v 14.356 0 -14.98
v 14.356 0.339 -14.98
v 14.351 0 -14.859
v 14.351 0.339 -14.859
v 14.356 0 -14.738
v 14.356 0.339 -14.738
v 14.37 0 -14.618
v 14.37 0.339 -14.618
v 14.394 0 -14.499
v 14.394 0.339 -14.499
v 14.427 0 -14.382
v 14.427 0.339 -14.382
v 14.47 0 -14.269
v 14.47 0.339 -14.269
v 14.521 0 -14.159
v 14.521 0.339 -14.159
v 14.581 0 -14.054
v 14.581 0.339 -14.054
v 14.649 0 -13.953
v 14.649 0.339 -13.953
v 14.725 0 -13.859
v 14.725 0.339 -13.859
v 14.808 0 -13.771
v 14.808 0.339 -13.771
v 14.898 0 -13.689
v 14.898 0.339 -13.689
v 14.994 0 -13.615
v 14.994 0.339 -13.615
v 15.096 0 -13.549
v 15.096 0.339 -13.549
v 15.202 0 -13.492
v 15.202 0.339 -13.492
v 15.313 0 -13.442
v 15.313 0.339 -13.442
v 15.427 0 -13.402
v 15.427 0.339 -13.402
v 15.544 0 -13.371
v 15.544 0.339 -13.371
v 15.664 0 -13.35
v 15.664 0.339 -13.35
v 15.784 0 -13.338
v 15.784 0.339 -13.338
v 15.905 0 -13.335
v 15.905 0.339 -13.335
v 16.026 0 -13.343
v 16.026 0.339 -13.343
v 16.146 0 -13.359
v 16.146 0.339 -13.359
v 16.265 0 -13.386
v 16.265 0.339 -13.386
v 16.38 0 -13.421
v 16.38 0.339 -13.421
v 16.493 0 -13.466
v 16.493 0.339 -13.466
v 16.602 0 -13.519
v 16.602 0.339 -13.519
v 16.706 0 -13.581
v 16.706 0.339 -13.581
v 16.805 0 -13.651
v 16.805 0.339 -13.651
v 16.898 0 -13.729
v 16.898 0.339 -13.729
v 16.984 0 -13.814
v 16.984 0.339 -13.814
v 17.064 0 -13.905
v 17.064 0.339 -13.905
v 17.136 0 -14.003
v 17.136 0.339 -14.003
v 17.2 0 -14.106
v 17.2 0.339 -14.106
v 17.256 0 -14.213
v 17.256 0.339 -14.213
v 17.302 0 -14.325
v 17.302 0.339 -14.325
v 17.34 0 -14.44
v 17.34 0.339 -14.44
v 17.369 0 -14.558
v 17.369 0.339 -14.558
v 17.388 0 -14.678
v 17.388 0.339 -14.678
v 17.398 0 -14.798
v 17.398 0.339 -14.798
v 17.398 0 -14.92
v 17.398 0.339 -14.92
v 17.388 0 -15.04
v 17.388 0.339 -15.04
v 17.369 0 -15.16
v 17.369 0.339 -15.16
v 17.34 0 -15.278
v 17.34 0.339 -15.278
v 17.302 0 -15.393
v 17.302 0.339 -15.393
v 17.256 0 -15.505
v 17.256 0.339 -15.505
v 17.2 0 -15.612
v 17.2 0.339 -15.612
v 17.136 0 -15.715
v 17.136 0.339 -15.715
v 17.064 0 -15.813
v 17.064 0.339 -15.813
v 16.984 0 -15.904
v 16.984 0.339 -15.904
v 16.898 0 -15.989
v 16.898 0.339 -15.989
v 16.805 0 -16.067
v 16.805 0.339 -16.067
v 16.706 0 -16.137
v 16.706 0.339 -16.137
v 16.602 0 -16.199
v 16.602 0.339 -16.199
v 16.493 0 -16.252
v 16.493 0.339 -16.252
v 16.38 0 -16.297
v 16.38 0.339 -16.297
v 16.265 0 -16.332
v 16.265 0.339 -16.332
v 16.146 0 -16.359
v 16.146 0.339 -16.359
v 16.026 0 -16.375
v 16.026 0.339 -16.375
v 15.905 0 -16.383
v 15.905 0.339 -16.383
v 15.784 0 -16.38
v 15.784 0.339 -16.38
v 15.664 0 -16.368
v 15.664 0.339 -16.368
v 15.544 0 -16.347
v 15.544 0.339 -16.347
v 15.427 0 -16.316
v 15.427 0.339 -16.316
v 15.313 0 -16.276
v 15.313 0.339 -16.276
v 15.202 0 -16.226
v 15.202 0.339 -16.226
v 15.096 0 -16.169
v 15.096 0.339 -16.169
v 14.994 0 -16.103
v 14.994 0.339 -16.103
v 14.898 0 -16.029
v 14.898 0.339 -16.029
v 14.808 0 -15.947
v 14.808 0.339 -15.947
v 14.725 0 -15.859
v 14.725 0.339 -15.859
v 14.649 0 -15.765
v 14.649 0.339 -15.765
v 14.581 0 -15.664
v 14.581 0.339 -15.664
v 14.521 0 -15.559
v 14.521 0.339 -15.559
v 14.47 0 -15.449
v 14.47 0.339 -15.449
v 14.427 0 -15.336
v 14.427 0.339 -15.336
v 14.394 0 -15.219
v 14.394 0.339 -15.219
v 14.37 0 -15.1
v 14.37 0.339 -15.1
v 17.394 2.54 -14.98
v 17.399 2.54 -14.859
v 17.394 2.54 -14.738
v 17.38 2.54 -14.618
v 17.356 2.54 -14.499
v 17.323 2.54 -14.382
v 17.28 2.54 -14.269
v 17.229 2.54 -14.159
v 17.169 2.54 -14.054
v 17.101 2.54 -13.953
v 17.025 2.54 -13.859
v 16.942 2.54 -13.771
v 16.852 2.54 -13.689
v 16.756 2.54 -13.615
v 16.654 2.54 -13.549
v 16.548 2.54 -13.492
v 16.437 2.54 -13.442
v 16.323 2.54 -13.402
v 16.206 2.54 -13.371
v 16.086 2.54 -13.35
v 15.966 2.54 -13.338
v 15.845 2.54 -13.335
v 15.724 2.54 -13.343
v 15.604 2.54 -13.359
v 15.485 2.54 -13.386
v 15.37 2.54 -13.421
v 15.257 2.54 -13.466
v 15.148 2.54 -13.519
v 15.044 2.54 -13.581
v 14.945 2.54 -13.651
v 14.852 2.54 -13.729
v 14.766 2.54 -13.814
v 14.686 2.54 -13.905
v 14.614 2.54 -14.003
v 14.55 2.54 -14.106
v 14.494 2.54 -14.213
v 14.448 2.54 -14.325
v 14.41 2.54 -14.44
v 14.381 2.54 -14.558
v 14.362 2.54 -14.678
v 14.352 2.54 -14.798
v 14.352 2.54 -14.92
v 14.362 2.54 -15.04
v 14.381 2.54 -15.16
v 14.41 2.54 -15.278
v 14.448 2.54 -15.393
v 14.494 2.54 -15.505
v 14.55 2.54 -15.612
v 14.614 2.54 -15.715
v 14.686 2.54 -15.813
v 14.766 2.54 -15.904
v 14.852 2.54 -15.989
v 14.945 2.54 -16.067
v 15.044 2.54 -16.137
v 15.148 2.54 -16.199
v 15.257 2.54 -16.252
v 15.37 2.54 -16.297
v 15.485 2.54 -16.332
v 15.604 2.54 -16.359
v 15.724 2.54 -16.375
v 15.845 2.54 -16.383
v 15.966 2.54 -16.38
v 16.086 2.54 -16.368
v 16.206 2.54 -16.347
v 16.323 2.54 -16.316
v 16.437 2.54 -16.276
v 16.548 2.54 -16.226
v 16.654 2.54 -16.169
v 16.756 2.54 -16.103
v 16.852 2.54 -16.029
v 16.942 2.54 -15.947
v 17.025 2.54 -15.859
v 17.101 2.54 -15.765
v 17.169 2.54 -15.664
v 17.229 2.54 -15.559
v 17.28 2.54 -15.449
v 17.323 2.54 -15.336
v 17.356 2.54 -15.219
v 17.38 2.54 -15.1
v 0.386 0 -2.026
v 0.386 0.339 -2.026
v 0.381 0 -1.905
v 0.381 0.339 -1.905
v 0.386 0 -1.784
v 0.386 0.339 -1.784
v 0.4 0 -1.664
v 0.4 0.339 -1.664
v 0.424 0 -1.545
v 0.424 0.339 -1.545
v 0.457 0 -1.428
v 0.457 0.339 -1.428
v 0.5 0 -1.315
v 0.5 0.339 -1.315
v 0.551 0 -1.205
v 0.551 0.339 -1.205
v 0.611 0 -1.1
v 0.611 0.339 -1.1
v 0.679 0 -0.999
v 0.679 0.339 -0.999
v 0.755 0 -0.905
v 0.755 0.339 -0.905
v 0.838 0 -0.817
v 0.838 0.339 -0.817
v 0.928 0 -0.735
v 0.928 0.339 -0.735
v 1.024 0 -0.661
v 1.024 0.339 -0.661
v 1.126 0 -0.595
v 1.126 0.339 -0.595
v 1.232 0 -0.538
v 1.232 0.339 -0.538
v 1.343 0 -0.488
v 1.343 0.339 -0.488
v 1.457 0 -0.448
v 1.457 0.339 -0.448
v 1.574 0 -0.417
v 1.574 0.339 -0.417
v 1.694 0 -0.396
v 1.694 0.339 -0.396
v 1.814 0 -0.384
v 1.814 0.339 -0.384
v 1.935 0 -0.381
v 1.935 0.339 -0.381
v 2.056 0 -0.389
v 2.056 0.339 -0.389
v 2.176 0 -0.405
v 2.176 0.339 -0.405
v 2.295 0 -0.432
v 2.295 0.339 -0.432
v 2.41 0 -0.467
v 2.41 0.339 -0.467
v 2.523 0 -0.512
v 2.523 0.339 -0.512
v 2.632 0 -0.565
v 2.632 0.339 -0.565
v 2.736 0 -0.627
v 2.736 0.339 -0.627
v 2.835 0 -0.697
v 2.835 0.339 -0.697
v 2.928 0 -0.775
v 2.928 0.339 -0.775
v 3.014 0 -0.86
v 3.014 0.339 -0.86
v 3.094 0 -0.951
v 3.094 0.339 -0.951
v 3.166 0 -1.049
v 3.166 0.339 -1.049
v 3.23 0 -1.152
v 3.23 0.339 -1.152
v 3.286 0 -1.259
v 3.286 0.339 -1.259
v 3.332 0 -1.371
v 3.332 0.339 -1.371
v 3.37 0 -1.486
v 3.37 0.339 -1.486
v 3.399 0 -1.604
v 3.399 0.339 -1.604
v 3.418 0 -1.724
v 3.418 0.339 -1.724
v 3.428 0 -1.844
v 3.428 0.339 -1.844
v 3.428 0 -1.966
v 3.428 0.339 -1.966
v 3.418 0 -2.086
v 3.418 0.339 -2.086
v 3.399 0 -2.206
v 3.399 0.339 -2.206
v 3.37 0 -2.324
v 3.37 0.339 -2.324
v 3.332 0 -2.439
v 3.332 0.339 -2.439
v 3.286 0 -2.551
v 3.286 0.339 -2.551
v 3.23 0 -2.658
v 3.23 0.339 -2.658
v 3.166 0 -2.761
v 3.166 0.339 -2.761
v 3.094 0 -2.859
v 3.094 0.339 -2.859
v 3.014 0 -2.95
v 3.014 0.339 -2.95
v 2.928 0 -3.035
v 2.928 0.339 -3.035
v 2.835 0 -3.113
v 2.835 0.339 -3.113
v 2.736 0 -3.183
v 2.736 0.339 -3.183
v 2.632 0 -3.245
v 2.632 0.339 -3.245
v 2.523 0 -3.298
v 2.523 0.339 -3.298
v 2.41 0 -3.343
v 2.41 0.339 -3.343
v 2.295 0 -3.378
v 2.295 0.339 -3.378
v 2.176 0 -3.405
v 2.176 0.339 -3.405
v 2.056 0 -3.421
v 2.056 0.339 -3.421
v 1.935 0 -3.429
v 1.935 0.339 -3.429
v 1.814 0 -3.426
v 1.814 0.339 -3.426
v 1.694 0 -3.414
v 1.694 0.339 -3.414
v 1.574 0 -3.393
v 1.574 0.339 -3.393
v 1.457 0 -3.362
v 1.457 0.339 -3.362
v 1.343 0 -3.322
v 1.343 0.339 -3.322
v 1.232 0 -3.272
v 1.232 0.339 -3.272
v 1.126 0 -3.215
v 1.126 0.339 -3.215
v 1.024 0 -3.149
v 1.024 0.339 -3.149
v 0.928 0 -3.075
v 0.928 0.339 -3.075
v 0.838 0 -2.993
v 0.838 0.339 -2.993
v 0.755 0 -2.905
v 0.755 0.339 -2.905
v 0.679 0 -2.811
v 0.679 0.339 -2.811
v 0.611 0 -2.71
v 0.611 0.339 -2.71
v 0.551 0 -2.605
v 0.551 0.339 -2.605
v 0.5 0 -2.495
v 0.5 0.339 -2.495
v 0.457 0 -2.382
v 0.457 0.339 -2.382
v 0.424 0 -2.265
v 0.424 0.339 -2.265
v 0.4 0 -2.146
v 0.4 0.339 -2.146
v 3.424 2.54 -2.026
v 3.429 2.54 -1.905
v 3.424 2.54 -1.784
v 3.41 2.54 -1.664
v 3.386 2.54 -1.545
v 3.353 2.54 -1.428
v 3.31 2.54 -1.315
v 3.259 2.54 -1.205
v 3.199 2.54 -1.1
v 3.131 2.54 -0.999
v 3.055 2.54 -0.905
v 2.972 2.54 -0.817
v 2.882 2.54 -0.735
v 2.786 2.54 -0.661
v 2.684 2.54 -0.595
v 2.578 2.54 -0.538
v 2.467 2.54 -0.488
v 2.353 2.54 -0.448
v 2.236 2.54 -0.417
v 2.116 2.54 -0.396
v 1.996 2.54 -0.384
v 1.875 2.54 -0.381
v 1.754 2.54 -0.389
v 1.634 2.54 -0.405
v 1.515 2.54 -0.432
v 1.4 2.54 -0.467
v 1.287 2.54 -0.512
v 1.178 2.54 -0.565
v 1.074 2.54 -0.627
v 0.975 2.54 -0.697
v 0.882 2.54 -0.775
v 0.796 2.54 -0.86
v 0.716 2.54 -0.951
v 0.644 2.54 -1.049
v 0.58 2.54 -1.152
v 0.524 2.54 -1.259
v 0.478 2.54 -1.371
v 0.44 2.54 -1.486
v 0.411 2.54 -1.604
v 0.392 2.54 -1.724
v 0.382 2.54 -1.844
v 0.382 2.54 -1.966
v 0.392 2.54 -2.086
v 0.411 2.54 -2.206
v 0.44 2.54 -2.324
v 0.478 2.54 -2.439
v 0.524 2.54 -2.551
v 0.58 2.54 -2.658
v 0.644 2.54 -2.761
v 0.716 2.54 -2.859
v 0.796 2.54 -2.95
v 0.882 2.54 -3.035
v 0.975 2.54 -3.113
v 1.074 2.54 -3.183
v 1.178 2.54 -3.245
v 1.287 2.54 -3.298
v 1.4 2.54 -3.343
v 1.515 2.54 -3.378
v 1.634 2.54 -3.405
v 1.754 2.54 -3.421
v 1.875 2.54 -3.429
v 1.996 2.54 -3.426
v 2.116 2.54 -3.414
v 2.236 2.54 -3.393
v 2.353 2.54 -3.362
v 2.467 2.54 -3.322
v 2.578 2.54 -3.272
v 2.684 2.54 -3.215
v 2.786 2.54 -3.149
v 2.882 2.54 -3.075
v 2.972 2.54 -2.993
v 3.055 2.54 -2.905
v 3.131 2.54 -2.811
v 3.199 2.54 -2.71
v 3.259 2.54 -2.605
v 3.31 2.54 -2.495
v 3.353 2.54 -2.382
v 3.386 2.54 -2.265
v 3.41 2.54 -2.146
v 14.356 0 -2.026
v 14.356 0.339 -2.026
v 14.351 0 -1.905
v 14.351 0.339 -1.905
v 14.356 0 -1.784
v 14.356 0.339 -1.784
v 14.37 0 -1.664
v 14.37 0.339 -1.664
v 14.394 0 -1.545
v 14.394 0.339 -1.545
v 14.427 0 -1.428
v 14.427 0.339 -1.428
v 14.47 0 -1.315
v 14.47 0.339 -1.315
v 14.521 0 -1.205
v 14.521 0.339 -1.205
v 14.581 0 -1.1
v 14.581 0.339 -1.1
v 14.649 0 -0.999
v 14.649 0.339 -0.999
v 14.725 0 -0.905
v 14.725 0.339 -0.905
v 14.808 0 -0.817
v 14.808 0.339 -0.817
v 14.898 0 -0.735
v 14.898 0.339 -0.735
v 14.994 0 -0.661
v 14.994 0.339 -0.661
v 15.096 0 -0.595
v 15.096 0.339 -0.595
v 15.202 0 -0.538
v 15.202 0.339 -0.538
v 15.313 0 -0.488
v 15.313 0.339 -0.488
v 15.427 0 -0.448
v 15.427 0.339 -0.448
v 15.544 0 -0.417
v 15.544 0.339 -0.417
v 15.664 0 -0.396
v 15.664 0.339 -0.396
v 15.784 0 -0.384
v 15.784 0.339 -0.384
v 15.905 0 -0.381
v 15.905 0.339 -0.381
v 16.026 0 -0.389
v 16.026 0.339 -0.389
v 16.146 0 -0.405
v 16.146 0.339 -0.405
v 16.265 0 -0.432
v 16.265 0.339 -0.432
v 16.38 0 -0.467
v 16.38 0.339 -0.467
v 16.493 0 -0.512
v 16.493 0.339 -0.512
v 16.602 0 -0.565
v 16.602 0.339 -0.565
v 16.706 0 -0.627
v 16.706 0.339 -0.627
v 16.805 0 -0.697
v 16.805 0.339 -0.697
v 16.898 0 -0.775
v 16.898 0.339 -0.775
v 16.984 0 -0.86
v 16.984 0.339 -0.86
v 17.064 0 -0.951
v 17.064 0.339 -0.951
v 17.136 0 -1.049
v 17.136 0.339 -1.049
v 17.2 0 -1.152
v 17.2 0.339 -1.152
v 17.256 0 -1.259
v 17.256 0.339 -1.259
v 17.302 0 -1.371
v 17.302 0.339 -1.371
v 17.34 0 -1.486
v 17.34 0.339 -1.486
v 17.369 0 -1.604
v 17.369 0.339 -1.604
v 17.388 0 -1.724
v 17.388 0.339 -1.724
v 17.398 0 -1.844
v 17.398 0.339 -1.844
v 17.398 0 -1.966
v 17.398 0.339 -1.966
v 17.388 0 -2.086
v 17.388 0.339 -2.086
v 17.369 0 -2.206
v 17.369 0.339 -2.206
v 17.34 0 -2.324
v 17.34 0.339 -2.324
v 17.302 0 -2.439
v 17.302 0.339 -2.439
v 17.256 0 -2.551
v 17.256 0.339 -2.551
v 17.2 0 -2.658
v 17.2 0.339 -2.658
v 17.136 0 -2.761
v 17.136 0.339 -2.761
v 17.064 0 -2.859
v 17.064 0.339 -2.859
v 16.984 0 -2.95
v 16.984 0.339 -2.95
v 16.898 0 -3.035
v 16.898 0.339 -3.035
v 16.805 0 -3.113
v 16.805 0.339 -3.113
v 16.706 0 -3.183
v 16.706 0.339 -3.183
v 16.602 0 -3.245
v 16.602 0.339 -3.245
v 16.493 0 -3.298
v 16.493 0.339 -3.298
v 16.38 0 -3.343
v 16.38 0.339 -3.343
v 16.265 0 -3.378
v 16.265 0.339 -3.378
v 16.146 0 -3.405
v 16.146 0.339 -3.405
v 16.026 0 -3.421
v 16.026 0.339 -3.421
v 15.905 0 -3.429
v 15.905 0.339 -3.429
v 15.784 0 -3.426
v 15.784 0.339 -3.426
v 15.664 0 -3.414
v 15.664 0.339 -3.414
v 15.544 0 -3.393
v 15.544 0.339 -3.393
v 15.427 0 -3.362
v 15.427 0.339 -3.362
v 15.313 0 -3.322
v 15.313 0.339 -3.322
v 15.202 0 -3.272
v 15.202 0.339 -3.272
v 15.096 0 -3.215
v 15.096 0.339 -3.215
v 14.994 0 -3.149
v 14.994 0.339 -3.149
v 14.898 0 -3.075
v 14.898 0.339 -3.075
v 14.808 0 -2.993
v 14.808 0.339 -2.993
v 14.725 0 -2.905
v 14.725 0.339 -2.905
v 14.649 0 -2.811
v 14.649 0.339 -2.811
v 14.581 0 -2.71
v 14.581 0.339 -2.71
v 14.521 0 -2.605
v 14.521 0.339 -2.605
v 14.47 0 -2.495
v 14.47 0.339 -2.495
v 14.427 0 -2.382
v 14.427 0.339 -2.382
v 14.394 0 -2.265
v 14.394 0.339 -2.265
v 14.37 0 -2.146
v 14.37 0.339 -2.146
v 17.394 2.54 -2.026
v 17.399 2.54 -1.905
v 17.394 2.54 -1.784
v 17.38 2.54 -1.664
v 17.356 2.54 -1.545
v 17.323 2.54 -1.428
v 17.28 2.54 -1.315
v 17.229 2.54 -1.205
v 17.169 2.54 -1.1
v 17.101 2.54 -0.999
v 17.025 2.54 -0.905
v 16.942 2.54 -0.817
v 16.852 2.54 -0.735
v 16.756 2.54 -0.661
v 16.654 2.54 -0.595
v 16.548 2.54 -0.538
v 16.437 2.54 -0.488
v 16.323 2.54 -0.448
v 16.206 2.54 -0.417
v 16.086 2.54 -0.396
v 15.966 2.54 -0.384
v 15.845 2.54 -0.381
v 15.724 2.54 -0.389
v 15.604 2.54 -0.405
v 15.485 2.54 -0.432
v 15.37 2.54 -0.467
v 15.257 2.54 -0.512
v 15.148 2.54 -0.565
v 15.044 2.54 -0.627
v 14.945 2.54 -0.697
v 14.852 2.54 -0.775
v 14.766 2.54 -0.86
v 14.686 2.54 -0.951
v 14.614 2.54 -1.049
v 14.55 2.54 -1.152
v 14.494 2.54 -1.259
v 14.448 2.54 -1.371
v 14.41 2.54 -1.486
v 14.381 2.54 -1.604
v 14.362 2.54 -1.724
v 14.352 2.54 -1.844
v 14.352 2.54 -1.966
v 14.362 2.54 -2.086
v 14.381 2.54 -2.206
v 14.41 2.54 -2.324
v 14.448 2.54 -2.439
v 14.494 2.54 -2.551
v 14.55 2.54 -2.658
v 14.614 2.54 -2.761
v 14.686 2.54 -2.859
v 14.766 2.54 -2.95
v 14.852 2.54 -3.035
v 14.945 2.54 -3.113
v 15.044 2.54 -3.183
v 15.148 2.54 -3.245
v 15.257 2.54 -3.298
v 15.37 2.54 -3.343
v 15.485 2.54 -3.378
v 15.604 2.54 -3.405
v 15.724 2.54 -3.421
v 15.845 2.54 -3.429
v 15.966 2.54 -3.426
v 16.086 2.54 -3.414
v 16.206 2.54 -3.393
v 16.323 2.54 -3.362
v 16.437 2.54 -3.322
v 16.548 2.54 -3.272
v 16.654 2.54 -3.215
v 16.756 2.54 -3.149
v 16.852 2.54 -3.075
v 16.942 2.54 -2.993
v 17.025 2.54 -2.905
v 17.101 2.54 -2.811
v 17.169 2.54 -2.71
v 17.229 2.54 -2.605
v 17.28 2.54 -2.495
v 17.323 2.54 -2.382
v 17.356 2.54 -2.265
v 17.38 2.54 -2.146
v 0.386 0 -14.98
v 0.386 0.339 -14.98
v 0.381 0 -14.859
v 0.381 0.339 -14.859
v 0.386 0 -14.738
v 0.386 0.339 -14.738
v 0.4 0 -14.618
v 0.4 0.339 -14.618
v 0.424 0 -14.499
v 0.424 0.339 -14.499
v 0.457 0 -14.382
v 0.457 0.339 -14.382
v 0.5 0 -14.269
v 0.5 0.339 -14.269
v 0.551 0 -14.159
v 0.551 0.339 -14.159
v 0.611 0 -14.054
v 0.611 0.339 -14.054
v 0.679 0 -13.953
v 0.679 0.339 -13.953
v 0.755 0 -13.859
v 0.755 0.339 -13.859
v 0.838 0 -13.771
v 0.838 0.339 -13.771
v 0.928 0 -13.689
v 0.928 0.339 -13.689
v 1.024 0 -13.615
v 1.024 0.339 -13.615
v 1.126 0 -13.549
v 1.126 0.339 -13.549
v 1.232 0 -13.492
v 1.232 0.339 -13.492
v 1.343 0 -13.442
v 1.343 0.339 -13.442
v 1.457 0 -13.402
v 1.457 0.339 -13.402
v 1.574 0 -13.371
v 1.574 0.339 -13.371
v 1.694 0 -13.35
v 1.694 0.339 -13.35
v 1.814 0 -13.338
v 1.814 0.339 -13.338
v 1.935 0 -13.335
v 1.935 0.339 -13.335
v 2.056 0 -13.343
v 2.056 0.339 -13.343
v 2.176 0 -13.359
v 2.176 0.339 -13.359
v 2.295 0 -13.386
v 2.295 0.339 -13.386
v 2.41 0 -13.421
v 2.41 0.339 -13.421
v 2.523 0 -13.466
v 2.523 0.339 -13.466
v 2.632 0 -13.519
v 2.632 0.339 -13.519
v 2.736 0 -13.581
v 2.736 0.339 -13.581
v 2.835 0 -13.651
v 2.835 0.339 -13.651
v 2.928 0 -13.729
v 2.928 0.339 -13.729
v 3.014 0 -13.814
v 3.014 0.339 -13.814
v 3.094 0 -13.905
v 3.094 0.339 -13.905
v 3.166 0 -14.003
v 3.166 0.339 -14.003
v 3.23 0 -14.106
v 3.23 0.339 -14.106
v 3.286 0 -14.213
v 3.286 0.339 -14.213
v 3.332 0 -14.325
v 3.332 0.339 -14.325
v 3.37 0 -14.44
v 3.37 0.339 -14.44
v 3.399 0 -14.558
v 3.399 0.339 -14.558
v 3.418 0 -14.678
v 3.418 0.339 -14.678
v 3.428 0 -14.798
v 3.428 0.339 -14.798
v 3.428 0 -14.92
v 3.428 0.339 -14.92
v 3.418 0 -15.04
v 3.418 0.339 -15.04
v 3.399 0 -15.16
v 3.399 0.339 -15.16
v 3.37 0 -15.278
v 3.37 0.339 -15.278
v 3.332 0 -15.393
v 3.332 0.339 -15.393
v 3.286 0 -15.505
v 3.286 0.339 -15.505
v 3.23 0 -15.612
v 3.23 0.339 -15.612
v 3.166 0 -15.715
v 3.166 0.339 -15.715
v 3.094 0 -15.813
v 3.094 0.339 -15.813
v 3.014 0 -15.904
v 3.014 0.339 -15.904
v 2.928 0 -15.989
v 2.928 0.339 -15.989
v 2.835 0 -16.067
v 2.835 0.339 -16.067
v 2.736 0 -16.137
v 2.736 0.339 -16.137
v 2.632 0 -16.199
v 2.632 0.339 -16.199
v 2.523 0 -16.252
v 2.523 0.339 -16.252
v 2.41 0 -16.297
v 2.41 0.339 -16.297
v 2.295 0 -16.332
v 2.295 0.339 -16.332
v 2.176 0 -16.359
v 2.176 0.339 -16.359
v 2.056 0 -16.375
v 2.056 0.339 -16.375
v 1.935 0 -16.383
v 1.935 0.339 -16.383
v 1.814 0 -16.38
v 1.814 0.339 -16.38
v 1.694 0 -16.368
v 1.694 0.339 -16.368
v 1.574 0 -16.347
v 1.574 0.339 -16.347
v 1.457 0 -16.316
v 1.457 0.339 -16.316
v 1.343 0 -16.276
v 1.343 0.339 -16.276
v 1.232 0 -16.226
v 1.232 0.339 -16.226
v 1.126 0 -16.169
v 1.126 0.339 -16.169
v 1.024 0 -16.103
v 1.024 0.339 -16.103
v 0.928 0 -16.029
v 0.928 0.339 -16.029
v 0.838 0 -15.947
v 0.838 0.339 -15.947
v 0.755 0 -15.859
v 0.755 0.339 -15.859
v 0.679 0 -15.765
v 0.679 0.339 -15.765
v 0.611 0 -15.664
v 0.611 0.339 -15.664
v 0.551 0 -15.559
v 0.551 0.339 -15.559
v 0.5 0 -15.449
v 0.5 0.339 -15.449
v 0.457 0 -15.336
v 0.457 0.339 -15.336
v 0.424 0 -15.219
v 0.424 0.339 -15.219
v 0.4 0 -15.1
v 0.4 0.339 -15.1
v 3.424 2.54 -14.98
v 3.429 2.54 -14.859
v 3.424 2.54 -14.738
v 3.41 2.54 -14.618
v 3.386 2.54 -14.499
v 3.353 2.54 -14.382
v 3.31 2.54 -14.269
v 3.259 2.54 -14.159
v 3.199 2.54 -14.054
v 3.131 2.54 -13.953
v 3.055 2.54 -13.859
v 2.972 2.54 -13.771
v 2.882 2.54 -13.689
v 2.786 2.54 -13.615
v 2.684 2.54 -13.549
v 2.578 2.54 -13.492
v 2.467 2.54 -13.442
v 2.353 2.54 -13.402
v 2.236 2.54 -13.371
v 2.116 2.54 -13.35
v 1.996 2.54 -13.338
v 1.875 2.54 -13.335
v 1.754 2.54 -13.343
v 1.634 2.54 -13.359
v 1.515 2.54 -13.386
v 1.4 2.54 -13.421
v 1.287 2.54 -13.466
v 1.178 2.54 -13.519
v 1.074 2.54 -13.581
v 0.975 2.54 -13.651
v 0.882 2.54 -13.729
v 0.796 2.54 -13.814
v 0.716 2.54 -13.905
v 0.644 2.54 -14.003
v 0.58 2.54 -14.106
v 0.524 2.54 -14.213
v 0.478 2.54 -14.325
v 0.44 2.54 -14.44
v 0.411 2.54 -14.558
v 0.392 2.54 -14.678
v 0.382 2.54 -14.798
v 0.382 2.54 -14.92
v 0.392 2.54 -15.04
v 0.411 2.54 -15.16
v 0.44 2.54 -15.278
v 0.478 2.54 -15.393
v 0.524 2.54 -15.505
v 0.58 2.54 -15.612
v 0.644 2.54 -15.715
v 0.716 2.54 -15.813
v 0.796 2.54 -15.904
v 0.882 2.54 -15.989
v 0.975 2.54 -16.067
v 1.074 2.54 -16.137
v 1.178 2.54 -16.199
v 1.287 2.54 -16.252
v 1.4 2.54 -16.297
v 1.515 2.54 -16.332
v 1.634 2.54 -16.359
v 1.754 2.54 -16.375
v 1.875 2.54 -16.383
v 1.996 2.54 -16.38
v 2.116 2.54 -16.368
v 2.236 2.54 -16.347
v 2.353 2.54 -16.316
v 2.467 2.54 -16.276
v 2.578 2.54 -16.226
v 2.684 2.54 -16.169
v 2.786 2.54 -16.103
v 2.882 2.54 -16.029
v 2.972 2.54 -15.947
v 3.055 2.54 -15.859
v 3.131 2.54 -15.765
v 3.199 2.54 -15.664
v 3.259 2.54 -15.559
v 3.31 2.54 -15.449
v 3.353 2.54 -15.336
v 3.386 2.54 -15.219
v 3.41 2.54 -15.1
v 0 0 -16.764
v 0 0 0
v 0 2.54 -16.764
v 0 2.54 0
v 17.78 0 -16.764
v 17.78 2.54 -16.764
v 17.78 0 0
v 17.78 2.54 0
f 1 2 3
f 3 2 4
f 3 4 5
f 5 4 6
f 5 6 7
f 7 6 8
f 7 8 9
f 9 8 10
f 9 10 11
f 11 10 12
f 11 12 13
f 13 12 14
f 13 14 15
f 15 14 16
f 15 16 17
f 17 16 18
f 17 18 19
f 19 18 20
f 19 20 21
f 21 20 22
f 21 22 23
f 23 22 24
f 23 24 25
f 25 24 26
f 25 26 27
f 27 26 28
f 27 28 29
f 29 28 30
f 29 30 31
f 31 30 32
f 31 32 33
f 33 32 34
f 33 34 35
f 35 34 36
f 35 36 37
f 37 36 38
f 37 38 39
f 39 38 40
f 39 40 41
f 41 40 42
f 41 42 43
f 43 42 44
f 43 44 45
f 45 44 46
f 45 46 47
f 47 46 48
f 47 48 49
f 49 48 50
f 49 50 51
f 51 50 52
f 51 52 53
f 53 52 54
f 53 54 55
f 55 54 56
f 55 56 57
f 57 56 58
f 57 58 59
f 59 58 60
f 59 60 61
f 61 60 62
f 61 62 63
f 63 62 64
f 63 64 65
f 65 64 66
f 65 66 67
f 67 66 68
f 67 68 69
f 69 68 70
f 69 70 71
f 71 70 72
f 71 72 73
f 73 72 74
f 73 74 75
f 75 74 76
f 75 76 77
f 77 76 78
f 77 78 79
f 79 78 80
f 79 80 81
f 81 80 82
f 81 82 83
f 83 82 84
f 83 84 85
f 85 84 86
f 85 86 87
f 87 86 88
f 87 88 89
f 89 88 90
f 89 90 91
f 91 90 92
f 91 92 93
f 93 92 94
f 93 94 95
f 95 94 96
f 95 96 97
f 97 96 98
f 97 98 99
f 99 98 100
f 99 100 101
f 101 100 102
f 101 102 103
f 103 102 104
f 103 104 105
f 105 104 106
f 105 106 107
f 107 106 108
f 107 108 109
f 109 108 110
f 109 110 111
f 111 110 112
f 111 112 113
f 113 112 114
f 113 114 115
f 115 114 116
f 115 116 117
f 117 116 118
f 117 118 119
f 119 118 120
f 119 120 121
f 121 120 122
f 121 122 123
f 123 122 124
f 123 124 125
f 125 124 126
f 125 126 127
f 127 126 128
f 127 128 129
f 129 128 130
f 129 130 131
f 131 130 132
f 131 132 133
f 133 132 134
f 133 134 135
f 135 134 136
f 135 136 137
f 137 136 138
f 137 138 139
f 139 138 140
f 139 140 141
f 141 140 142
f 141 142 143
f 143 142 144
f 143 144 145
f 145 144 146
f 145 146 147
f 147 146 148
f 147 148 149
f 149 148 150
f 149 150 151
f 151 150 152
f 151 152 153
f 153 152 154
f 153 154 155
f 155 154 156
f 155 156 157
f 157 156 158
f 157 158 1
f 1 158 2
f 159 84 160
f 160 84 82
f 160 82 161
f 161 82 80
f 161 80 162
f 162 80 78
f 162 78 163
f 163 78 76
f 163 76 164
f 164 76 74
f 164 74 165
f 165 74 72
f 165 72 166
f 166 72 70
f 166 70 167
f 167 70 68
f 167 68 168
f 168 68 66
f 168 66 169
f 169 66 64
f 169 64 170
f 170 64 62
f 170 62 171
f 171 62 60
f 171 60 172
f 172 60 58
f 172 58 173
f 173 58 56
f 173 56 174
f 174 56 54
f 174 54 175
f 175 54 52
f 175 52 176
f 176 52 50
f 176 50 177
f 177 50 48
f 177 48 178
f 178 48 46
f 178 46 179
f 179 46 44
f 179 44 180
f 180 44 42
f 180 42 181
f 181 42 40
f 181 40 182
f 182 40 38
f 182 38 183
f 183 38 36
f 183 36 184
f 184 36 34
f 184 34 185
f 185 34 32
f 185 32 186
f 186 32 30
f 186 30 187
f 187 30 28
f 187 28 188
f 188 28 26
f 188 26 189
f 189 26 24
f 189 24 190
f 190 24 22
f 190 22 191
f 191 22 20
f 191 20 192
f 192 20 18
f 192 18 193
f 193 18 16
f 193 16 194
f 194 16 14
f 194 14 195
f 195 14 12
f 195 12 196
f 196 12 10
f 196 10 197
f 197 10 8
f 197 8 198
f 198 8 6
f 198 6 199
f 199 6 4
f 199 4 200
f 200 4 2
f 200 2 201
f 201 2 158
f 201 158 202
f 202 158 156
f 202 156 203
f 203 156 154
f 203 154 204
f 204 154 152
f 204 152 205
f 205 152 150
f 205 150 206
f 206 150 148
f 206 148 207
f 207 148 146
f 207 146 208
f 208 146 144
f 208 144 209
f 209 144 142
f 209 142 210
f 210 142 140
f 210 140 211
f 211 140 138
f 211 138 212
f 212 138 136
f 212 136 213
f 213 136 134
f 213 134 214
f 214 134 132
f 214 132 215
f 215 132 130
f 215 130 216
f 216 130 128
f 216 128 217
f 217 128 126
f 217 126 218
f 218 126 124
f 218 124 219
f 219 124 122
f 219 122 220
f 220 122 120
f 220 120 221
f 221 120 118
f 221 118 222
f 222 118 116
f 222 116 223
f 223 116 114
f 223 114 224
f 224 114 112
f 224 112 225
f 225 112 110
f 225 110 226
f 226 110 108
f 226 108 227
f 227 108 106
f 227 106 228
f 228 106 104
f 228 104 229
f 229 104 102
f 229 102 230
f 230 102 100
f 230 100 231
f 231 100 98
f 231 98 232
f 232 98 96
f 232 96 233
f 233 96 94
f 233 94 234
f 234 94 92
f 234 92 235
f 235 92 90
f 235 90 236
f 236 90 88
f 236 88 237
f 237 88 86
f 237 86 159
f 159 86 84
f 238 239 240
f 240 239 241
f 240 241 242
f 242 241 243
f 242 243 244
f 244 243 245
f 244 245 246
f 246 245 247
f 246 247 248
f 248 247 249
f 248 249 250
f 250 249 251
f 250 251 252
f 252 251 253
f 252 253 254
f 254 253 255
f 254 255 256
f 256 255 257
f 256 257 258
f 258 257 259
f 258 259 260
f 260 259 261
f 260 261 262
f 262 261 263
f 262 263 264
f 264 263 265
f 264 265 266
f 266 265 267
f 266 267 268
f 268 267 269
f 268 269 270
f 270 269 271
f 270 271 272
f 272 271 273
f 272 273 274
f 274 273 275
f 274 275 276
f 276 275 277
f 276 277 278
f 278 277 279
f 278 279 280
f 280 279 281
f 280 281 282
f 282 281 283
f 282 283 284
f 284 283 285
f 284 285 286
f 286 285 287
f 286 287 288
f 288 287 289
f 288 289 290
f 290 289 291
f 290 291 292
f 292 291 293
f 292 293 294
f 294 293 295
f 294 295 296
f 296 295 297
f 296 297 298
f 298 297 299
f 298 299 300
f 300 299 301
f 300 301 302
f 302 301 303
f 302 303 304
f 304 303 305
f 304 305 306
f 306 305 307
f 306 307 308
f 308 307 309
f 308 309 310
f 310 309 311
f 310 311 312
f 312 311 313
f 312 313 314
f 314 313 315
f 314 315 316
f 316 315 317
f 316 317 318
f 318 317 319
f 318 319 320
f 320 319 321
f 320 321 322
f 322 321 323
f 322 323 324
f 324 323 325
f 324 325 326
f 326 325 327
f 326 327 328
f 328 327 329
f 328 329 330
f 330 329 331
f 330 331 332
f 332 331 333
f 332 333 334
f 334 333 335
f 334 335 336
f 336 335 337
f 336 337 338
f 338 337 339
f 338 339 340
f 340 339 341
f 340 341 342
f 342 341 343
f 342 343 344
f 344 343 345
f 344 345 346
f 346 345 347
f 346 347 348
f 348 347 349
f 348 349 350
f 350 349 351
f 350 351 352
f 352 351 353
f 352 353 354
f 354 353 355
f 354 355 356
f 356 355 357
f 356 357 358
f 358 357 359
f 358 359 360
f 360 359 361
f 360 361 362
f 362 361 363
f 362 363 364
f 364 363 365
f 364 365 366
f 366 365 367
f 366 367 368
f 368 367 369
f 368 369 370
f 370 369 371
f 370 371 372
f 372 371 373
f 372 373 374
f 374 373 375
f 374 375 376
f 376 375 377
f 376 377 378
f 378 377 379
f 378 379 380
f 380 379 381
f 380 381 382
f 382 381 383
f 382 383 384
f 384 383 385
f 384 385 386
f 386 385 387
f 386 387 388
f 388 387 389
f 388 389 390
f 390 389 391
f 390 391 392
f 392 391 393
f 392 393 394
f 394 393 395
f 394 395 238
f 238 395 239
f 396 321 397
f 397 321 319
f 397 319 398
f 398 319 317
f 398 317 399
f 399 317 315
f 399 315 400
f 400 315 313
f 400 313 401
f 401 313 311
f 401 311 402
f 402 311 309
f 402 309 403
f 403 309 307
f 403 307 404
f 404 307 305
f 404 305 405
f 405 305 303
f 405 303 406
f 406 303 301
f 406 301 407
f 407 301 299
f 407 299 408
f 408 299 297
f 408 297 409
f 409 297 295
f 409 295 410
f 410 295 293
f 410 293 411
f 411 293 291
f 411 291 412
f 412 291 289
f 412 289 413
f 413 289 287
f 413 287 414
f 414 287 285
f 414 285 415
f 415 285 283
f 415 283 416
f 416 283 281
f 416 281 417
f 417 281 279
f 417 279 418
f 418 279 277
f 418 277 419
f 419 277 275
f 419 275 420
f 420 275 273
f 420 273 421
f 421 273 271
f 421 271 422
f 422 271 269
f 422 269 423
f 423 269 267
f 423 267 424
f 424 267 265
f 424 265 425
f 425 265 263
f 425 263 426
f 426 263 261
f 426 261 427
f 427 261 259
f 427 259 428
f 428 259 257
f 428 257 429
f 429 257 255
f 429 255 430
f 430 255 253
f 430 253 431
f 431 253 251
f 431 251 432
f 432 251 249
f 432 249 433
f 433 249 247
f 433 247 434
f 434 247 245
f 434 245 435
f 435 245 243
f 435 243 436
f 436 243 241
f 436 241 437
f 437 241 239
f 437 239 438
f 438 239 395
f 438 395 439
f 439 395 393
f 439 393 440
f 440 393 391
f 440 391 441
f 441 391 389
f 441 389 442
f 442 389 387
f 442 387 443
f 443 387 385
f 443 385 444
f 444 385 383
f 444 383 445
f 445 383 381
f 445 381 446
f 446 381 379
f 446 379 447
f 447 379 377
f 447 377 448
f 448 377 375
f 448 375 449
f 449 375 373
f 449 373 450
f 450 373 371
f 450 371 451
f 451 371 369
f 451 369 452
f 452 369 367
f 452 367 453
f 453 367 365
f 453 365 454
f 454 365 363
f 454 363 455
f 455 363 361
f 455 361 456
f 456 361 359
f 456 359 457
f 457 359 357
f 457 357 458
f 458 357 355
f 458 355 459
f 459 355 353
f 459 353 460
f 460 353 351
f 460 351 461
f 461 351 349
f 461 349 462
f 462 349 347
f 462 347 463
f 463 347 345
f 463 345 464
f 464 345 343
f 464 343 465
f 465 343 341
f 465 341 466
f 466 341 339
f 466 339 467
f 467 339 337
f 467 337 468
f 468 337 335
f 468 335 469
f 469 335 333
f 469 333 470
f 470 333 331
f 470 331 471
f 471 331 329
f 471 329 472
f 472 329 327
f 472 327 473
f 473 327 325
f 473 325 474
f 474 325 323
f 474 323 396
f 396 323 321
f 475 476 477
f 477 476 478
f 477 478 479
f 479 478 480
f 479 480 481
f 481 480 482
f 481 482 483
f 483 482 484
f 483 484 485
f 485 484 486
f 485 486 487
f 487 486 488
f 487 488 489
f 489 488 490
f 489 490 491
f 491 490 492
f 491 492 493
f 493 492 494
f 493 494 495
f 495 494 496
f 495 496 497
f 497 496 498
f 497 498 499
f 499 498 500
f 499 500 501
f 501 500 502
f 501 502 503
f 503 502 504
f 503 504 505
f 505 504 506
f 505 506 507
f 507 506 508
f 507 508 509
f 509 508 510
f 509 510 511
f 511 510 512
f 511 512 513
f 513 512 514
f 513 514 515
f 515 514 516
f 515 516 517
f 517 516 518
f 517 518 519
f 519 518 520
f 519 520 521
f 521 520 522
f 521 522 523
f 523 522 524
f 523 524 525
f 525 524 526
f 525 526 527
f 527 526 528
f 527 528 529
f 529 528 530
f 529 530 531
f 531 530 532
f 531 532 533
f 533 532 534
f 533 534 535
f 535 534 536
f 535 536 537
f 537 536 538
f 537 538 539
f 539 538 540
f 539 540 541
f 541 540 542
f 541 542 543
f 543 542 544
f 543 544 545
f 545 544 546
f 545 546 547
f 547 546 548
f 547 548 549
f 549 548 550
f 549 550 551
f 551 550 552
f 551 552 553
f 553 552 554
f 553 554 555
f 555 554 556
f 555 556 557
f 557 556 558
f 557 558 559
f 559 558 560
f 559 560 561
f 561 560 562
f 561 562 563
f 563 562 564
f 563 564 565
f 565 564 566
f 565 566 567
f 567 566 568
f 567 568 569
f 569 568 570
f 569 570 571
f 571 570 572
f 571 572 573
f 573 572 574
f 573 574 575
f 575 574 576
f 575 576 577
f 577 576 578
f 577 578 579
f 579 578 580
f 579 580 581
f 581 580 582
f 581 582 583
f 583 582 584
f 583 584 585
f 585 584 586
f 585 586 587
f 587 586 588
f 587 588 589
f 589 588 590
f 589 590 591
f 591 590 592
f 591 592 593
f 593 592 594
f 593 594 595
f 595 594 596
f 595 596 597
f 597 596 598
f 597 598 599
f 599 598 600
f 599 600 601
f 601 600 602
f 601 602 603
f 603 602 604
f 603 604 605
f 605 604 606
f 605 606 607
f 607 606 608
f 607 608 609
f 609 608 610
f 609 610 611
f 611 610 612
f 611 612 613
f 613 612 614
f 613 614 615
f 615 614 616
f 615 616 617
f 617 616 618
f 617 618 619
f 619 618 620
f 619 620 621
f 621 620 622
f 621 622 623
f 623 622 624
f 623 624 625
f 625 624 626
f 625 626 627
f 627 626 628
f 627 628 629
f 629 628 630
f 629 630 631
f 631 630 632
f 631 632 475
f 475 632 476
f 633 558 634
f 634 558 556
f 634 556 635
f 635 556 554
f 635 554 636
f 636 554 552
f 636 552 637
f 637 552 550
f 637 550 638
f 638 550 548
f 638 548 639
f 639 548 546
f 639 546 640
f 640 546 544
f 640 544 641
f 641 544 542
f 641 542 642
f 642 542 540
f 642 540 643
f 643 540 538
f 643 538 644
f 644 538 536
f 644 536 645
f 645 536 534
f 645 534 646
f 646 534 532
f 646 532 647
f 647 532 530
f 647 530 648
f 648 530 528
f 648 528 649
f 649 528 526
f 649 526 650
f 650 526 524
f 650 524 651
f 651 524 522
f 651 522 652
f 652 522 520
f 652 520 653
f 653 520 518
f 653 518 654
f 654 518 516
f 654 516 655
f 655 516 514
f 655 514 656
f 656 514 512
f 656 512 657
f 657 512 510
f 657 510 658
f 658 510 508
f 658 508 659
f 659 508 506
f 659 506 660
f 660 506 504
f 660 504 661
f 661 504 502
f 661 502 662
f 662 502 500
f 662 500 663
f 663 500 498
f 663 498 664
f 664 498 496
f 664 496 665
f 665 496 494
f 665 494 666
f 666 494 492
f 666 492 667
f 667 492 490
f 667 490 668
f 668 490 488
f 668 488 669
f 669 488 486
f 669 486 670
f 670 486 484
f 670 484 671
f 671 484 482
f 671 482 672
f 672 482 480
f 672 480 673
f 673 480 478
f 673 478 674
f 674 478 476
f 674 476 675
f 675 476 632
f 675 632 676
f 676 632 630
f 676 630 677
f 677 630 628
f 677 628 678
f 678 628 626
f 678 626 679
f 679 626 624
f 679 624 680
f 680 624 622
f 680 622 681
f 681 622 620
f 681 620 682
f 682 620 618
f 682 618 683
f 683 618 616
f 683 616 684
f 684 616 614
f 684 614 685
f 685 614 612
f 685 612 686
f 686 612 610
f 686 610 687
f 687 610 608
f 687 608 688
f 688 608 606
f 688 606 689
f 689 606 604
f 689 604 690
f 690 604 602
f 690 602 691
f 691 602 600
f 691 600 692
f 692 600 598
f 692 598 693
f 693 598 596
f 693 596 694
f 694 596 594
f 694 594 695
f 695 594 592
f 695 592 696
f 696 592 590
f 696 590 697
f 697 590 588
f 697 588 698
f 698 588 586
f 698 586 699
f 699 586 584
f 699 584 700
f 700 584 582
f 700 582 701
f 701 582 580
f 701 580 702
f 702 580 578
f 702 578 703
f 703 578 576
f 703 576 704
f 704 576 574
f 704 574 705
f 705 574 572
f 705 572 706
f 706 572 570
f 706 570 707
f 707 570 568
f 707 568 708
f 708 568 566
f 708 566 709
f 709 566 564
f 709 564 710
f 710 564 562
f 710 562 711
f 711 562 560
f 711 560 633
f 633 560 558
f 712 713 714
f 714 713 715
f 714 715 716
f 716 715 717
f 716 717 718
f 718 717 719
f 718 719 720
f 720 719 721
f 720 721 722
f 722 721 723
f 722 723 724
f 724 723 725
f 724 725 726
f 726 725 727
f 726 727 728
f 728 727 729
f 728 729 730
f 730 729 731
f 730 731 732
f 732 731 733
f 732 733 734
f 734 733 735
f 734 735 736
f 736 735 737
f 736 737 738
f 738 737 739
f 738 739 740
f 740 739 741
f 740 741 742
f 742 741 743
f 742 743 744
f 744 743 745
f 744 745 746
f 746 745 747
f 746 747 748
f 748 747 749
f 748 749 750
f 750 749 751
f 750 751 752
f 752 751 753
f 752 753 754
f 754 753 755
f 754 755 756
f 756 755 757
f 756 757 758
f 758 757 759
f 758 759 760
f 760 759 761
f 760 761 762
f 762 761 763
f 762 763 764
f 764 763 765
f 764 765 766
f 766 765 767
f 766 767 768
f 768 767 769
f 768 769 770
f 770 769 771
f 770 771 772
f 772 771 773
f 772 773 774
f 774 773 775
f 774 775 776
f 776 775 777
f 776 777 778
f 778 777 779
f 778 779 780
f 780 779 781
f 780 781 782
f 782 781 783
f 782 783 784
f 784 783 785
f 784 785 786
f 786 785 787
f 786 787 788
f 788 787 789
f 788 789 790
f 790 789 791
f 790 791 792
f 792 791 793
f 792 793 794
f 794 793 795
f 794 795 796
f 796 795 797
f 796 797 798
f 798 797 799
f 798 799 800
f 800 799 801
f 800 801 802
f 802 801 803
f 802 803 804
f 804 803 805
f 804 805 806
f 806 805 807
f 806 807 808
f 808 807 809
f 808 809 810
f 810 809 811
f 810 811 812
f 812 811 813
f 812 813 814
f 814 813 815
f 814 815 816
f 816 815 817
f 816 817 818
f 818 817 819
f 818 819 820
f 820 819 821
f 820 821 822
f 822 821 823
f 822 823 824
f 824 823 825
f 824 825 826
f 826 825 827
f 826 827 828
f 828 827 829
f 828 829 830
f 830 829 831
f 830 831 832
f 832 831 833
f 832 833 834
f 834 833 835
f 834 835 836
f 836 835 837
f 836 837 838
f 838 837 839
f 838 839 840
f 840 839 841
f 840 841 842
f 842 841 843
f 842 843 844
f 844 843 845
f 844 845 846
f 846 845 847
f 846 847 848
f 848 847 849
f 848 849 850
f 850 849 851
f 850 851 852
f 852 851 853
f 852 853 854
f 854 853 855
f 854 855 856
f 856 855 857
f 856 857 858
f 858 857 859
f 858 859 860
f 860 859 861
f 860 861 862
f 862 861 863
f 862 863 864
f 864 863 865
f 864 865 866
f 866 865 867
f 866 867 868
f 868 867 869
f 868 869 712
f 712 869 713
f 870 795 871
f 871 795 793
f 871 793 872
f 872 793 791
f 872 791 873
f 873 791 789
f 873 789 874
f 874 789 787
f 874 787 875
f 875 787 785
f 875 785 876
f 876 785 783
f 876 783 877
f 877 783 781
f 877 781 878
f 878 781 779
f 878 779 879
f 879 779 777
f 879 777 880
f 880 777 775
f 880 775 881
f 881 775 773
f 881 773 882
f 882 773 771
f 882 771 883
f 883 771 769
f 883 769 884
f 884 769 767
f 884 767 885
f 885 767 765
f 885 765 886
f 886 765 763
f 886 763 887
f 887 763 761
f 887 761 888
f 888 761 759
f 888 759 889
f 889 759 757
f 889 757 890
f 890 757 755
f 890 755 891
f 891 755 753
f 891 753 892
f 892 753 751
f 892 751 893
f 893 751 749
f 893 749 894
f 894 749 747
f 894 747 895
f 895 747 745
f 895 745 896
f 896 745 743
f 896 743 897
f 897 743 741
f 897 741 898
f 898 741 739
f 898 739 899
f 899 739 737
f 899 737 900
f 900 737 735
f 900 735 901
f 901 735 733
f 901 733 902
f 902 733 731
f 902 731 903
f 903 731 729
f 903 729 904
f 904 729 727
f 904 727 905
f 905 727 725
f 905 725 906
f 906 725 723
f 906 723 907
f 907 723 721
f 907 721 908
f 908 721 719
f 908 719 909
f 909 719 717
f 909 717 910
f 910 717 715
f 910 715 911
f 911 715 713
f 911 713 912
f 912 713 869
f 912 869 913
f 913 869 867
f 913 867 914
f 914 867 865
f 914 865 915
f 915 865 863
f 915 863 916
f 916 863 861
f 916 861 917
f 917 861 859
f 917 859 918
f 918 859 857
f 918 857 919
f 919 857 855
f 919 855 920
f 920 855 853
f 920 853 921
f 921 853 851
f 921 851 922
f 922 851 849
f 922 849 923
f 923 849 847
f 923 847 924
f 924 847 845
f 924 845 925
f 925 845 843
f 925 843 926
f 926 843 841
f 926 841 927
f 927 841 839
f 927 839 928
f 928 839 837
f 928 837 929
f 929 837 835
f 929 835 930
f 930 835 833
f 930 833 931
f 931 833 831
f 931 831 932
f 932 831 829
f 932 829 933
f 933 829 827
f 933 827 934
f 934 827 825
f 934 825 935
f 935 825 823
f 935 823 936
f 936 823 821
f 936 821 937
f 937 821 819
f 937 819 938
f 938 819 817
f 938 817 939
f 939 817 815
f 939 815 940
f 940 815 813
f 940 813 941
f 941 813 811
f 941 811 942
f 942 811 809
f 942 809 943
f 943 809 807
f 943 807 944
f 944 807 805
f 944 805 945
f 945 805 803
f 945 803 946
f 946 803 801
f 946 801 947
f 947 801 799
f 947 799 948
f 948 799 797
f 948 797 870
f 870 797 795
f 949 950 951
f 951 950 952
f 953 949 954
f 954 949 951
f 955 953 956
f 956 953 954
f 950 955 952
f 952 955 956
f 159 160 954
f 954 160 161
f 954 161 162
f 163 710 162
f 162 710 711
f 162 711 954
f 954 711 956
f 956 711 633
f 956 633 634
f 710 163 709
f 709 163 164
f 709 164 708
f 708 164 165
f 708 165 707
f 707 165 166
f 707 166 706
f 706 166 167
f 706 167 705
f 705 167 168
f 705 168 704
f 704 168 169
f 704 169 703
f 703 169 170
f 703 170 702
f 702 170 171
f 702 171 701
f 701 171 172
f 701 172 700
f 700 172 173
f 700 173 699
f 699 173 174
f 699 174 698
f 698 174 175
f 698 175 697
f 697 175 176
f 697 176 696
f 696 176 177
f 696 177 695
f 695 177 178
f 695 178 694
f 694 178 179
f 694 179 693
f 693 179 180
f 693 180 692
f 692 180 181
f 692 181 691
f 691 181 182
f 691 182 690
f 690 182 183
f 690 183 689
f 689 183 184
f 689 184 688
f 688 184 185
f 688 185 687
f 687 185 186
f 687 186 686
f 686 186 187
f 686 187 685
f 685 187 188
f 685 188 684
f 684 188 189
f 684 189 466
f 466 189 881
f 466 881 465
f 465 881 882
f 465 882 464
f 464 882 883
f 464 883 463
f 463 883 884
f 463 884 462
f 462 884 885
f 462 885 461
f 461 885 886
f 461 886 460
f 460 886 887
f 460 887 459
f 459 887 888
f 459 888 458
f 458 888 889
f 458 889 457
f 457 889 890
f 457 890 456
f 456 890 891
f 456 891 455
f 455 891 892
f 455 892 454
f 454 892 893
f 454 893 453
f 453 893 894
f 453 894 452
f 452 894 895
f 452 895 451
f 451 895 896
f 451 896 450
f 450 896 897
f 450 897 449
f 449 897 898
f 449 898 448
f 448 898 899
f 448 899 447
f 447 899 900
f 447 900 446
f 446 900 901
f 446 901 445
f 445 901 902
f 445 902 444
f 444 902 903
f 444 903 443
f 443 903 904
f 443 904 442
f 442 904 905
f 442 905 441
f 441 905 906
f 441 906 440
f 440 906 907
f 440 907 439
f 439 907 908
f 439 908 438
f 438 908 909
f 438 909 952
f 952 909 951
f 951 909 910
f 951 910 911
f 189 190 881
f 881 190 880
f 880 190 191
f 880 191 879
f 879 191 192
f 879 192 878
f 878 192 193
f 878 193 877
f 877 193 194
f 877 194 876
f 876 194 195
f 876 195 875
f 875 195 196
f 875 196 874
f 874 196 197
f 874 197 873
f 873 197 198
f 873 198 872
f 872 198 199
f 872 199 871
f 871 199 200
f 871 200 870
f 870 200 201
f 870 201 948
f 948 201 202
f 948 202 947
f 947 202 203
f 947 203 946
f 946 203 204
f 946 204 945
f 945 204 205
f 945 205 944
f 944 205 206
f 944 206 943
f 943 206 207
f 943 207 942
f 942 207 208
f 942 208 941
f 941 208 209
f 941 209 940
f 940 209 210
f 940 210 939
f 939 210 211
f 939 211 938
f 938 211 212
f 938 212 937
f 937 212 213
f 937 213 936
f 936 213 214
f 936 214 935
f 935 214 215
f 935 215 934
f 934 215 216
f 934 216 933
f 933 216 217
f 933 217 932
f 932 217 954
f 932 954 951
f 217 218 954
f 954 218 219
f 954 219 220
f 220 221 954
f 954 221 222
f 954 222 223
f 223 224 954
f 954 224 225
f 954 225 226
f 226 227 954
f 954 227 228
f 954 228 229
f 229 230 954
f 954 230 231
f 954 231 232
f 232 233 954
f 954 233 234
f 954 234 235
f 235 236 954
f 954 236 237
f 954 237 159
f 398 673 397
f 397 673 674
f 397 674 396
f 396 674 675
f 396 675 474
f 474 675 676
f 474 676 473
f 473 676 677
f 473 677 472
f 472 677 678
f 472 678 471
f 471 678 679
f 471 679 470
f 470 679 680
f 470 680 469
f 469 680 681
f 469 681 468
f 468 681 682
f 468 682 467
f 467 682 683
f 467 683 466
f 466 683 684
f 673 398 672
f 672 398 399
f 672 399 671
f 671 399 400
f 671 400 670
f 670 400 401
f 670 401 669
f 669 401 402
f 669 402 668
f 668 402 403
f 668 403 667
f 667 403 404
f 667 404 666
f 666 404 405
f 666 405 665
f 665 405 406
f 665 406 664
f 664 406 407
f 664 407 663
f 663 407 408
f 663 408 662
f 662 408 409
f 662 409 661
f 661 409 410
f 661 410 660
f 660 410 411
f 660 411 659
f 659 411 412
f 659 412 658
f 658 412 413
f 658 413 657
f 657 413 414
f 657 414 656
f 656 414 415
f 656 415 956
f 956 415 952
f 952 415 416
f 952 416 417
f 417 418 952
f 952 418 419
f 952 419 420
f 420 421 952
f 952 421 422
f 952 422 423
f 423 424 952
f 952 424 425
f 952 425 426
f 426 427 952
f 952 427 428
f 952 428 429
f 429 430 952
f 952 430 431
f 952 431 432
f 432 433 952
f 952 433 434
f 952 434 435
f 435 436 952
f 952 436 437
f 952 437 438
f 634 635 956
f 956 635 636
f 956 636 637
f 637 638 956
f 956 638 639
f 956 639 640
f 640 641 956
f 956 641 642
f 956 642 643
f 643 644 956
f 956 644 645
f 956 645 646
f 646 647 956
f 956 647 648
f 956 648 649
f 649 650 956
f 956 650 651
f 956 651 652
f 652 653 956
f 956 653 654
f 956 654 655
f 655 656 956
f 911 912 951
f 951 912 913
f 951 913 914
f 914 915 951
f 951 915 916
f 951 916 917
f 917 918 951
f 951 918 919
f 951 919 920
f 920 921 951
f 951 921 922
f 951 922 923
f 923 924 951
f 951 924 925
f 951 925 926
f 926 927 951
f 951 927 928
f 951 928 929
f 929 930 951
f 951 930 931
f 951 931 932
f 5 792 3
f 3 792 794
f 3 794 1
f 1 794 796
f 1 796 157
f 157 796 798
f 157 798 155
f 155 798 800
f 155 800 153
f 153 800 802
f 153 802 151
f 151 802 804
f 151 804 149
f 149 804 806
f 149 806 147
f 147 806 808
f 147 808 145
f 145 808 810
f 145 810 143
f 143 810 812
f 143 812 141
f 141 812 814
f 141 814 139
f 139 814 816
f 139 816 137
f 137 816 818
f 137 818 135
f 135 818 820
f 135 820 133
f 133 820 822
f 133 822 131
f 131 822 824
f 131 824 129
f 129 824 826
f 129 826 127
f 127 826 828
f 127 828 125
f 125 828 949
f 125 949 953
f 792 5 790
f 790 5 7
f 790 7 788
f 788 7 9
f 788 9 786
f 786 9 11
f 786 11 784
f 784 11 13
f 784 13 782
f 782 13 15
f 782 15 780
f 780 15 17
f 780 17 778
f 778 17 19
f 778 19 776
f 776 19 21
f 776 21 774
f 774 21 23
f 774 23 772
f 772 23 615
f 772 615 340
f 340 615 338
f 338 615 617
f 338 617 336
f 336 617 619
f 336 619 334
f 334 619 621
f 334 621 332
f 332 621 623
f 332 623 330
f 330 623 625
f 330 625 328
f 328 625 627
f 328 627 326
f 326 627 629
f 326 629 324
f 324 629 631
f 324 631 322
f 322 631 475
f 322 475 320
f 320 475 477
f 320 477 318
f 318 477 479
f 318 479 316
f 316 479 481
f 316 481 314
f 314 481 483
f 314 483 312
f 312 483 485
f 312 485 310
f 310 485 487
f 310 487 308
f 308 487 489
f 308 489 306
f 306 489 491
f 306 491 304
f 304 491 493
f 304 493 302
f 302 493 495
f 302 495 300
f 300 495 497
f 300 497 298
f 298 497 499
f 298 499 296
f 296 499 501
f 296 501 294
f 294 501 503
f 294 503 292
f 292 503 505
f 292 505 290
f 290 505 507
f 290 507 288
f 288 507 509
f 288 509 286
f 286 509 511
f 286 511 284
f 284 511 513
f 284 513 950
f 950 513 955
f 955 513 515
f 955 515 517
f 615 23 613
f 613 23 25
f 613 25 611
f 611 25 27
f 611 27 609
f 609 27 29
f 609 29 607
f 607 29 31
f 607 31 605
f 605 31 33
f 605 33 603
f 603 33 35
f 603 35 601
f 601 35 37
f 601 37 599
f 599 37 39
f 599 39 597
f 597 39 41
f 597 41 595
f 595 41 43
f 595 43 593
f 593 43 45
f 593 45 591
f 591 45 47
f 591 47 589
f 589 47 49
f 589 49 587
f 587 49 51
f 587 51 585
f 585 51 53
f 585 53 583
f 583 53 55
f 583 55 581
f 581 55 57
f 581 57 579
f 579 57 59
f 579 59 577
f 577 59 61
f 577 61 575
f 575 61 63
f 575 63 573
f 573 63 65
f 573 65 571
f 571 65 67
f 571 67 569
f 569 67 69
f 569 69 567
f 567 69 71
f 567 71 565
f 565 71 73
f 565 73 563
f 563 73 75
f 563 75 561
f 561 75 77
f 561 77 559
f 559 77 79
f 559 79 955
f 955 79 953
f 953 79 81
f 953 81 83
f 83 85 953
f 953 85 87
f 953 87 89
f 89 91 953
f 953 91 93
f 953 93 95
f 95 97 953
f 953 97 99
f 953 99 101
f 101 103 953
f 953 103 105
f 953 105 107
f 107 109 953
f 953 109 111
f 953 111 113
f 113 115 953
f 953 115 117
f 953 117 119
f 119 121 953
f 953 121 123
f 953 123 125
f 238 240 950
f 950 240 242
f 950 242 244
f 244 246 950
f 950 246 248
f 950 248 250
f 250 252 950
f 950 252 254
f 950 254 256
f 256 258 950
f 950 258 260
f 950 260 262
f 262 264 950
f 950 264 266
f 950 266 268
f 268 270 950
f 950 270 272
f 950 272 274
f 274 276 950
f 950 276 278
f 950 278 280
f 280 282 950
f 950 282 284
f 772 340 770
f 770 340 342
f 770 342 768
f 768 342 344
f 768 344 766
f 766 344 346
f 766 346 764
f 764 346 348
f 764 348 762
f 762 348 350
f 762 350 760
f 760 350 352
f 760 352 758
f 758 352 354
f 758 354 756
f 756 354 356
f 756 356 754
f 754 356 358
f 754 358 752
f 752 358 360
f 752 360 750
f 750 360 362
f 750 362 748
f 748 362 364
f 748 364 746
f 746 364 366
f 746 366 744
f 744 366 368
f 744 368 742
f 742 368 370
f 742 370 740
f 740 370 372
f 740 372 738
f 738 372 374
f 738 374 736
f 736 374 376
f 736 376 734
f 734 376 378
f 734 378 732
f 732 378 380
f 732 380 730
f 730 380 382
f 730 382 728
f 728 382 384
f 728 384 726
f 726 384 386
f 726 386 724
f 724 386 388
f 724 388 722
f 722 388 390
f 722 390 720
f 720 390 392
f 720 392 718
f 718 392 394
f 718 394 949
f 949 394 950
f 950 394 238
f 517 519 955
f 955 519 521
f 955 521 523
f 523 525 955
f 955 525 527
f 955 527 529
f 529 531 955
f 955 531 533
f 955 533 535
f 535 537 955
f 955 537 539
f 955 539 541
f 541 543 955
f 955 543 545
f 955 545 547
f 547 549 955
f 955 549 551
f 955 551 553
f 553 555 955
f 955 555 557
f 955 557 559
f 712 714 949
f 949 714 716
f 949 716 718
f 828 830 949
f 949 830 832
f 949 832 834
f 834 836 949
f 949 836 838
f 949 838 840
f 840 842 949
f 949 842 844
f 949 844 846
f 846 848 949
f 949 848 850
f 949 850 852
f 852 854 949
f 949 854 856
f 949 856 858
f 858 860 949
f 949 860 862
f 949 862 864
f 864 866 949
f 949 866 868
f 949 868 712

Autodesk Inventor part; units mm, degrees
ref_plane "YZ Plane" through (0, 0, 0) normal (1, 0, 0) x (0, 1, 0)
ref_plane "XZ Plane" through (0, 0, 0) normal (0, 1, 0) x (-1, 0, 0)
ref_plane "XY Plane" through (0, 0, 0) normal (0, 0, 1) x (1, 0, 0)
sketch "Sketch1" plane through (0, 0, 0) normal (0, 1, 0) x (-1, 0, 0)
  line L0 (0, 0) -> (-17.78, 0)
  line L1 (-17.78, 0) -> (-17.78, -16.764)
  line L2 (-17.78, -16.764) -> (0, -16.764)
  line L3 (0, -16.764) -> (0, 0)
  dimension "d0" = 17.78
  dimension "d1" = 16.764
extrude "Extrusion1" add sketch "Sketch1" along normal blind 2.54
sketch "Sketch2" plane through (0, 2.54, 0) normal (0, 1, 0) x (1, 0, 0)
  line L0 (0, 0) -> (17.78, 0) projected
  line L1 (0, 0) -> (3.81, 0)
  line L2 (3.81, 0) -> (3.81, 3.81)
  line L3 (3.81, 3.81) -> (0, 3.81)
  line L4 (0, 3.81) -> (0, 0)
  line L5 (17.78, 16.764) -> (0, 16.764) projected
  line L6 (0, 16.764) -> (3.81, 16.764)
  line L7 (3.81, 16.764) -> (3.81, 12.954)
  line L8 (3.81, 12.954) -> (0, 12.954)
  line L9 (0, 12.954) -> (0, 16.764)
  line L10 (17.7651, 0) -> (13.9551, 0)
  line L11 (13.9551, 0) -> (13.9551, 3.81)
  line L12 (13.9551, 3.81) -> (17.7651, 3.81)
  line L13 (17.7651, 3.81) -> (17.7651, 0)
  line L14 (17.78, 0) -> (17.78, 16.764) projected
  line L15 (17.78, 16.764) -> (13.97, 16.764)
  line L16 (13.97, 16.764) -> (13.97, 12.954)
  line L17 (13.97, 12.954) -> (17.78, 12.954)
  line L18 (17.78, 12.954) -> (17.78, 16.764)
  point P0 (1.905, 1.905)
  point P1 (15.875, 1.905)
  point P2 (15.875, 14.859)
  point P3 (1.905, 14.859)
  dimension "d4" = 3.81
  dimension "d5" = 3.81
  dimension "d6" = 3.81
  dimension "d7" = 3.81
  dimension "d8" = 3.81
  dimension "d9" = 3.81
  dimension "d10" = 3.81
  dimension "d11" = 3.81
hole "Hole1" at (1.905, 2.54, -1.905) at (15.875, 2.54, -1.905) at (15.875, 2.54, -14.859) at (1.905, 2.54, -14.859) direction (0, -1, 0) diameter 3.048 depth 10.16 tip angle 118
properties part number "Phone Mount Cover V1"
